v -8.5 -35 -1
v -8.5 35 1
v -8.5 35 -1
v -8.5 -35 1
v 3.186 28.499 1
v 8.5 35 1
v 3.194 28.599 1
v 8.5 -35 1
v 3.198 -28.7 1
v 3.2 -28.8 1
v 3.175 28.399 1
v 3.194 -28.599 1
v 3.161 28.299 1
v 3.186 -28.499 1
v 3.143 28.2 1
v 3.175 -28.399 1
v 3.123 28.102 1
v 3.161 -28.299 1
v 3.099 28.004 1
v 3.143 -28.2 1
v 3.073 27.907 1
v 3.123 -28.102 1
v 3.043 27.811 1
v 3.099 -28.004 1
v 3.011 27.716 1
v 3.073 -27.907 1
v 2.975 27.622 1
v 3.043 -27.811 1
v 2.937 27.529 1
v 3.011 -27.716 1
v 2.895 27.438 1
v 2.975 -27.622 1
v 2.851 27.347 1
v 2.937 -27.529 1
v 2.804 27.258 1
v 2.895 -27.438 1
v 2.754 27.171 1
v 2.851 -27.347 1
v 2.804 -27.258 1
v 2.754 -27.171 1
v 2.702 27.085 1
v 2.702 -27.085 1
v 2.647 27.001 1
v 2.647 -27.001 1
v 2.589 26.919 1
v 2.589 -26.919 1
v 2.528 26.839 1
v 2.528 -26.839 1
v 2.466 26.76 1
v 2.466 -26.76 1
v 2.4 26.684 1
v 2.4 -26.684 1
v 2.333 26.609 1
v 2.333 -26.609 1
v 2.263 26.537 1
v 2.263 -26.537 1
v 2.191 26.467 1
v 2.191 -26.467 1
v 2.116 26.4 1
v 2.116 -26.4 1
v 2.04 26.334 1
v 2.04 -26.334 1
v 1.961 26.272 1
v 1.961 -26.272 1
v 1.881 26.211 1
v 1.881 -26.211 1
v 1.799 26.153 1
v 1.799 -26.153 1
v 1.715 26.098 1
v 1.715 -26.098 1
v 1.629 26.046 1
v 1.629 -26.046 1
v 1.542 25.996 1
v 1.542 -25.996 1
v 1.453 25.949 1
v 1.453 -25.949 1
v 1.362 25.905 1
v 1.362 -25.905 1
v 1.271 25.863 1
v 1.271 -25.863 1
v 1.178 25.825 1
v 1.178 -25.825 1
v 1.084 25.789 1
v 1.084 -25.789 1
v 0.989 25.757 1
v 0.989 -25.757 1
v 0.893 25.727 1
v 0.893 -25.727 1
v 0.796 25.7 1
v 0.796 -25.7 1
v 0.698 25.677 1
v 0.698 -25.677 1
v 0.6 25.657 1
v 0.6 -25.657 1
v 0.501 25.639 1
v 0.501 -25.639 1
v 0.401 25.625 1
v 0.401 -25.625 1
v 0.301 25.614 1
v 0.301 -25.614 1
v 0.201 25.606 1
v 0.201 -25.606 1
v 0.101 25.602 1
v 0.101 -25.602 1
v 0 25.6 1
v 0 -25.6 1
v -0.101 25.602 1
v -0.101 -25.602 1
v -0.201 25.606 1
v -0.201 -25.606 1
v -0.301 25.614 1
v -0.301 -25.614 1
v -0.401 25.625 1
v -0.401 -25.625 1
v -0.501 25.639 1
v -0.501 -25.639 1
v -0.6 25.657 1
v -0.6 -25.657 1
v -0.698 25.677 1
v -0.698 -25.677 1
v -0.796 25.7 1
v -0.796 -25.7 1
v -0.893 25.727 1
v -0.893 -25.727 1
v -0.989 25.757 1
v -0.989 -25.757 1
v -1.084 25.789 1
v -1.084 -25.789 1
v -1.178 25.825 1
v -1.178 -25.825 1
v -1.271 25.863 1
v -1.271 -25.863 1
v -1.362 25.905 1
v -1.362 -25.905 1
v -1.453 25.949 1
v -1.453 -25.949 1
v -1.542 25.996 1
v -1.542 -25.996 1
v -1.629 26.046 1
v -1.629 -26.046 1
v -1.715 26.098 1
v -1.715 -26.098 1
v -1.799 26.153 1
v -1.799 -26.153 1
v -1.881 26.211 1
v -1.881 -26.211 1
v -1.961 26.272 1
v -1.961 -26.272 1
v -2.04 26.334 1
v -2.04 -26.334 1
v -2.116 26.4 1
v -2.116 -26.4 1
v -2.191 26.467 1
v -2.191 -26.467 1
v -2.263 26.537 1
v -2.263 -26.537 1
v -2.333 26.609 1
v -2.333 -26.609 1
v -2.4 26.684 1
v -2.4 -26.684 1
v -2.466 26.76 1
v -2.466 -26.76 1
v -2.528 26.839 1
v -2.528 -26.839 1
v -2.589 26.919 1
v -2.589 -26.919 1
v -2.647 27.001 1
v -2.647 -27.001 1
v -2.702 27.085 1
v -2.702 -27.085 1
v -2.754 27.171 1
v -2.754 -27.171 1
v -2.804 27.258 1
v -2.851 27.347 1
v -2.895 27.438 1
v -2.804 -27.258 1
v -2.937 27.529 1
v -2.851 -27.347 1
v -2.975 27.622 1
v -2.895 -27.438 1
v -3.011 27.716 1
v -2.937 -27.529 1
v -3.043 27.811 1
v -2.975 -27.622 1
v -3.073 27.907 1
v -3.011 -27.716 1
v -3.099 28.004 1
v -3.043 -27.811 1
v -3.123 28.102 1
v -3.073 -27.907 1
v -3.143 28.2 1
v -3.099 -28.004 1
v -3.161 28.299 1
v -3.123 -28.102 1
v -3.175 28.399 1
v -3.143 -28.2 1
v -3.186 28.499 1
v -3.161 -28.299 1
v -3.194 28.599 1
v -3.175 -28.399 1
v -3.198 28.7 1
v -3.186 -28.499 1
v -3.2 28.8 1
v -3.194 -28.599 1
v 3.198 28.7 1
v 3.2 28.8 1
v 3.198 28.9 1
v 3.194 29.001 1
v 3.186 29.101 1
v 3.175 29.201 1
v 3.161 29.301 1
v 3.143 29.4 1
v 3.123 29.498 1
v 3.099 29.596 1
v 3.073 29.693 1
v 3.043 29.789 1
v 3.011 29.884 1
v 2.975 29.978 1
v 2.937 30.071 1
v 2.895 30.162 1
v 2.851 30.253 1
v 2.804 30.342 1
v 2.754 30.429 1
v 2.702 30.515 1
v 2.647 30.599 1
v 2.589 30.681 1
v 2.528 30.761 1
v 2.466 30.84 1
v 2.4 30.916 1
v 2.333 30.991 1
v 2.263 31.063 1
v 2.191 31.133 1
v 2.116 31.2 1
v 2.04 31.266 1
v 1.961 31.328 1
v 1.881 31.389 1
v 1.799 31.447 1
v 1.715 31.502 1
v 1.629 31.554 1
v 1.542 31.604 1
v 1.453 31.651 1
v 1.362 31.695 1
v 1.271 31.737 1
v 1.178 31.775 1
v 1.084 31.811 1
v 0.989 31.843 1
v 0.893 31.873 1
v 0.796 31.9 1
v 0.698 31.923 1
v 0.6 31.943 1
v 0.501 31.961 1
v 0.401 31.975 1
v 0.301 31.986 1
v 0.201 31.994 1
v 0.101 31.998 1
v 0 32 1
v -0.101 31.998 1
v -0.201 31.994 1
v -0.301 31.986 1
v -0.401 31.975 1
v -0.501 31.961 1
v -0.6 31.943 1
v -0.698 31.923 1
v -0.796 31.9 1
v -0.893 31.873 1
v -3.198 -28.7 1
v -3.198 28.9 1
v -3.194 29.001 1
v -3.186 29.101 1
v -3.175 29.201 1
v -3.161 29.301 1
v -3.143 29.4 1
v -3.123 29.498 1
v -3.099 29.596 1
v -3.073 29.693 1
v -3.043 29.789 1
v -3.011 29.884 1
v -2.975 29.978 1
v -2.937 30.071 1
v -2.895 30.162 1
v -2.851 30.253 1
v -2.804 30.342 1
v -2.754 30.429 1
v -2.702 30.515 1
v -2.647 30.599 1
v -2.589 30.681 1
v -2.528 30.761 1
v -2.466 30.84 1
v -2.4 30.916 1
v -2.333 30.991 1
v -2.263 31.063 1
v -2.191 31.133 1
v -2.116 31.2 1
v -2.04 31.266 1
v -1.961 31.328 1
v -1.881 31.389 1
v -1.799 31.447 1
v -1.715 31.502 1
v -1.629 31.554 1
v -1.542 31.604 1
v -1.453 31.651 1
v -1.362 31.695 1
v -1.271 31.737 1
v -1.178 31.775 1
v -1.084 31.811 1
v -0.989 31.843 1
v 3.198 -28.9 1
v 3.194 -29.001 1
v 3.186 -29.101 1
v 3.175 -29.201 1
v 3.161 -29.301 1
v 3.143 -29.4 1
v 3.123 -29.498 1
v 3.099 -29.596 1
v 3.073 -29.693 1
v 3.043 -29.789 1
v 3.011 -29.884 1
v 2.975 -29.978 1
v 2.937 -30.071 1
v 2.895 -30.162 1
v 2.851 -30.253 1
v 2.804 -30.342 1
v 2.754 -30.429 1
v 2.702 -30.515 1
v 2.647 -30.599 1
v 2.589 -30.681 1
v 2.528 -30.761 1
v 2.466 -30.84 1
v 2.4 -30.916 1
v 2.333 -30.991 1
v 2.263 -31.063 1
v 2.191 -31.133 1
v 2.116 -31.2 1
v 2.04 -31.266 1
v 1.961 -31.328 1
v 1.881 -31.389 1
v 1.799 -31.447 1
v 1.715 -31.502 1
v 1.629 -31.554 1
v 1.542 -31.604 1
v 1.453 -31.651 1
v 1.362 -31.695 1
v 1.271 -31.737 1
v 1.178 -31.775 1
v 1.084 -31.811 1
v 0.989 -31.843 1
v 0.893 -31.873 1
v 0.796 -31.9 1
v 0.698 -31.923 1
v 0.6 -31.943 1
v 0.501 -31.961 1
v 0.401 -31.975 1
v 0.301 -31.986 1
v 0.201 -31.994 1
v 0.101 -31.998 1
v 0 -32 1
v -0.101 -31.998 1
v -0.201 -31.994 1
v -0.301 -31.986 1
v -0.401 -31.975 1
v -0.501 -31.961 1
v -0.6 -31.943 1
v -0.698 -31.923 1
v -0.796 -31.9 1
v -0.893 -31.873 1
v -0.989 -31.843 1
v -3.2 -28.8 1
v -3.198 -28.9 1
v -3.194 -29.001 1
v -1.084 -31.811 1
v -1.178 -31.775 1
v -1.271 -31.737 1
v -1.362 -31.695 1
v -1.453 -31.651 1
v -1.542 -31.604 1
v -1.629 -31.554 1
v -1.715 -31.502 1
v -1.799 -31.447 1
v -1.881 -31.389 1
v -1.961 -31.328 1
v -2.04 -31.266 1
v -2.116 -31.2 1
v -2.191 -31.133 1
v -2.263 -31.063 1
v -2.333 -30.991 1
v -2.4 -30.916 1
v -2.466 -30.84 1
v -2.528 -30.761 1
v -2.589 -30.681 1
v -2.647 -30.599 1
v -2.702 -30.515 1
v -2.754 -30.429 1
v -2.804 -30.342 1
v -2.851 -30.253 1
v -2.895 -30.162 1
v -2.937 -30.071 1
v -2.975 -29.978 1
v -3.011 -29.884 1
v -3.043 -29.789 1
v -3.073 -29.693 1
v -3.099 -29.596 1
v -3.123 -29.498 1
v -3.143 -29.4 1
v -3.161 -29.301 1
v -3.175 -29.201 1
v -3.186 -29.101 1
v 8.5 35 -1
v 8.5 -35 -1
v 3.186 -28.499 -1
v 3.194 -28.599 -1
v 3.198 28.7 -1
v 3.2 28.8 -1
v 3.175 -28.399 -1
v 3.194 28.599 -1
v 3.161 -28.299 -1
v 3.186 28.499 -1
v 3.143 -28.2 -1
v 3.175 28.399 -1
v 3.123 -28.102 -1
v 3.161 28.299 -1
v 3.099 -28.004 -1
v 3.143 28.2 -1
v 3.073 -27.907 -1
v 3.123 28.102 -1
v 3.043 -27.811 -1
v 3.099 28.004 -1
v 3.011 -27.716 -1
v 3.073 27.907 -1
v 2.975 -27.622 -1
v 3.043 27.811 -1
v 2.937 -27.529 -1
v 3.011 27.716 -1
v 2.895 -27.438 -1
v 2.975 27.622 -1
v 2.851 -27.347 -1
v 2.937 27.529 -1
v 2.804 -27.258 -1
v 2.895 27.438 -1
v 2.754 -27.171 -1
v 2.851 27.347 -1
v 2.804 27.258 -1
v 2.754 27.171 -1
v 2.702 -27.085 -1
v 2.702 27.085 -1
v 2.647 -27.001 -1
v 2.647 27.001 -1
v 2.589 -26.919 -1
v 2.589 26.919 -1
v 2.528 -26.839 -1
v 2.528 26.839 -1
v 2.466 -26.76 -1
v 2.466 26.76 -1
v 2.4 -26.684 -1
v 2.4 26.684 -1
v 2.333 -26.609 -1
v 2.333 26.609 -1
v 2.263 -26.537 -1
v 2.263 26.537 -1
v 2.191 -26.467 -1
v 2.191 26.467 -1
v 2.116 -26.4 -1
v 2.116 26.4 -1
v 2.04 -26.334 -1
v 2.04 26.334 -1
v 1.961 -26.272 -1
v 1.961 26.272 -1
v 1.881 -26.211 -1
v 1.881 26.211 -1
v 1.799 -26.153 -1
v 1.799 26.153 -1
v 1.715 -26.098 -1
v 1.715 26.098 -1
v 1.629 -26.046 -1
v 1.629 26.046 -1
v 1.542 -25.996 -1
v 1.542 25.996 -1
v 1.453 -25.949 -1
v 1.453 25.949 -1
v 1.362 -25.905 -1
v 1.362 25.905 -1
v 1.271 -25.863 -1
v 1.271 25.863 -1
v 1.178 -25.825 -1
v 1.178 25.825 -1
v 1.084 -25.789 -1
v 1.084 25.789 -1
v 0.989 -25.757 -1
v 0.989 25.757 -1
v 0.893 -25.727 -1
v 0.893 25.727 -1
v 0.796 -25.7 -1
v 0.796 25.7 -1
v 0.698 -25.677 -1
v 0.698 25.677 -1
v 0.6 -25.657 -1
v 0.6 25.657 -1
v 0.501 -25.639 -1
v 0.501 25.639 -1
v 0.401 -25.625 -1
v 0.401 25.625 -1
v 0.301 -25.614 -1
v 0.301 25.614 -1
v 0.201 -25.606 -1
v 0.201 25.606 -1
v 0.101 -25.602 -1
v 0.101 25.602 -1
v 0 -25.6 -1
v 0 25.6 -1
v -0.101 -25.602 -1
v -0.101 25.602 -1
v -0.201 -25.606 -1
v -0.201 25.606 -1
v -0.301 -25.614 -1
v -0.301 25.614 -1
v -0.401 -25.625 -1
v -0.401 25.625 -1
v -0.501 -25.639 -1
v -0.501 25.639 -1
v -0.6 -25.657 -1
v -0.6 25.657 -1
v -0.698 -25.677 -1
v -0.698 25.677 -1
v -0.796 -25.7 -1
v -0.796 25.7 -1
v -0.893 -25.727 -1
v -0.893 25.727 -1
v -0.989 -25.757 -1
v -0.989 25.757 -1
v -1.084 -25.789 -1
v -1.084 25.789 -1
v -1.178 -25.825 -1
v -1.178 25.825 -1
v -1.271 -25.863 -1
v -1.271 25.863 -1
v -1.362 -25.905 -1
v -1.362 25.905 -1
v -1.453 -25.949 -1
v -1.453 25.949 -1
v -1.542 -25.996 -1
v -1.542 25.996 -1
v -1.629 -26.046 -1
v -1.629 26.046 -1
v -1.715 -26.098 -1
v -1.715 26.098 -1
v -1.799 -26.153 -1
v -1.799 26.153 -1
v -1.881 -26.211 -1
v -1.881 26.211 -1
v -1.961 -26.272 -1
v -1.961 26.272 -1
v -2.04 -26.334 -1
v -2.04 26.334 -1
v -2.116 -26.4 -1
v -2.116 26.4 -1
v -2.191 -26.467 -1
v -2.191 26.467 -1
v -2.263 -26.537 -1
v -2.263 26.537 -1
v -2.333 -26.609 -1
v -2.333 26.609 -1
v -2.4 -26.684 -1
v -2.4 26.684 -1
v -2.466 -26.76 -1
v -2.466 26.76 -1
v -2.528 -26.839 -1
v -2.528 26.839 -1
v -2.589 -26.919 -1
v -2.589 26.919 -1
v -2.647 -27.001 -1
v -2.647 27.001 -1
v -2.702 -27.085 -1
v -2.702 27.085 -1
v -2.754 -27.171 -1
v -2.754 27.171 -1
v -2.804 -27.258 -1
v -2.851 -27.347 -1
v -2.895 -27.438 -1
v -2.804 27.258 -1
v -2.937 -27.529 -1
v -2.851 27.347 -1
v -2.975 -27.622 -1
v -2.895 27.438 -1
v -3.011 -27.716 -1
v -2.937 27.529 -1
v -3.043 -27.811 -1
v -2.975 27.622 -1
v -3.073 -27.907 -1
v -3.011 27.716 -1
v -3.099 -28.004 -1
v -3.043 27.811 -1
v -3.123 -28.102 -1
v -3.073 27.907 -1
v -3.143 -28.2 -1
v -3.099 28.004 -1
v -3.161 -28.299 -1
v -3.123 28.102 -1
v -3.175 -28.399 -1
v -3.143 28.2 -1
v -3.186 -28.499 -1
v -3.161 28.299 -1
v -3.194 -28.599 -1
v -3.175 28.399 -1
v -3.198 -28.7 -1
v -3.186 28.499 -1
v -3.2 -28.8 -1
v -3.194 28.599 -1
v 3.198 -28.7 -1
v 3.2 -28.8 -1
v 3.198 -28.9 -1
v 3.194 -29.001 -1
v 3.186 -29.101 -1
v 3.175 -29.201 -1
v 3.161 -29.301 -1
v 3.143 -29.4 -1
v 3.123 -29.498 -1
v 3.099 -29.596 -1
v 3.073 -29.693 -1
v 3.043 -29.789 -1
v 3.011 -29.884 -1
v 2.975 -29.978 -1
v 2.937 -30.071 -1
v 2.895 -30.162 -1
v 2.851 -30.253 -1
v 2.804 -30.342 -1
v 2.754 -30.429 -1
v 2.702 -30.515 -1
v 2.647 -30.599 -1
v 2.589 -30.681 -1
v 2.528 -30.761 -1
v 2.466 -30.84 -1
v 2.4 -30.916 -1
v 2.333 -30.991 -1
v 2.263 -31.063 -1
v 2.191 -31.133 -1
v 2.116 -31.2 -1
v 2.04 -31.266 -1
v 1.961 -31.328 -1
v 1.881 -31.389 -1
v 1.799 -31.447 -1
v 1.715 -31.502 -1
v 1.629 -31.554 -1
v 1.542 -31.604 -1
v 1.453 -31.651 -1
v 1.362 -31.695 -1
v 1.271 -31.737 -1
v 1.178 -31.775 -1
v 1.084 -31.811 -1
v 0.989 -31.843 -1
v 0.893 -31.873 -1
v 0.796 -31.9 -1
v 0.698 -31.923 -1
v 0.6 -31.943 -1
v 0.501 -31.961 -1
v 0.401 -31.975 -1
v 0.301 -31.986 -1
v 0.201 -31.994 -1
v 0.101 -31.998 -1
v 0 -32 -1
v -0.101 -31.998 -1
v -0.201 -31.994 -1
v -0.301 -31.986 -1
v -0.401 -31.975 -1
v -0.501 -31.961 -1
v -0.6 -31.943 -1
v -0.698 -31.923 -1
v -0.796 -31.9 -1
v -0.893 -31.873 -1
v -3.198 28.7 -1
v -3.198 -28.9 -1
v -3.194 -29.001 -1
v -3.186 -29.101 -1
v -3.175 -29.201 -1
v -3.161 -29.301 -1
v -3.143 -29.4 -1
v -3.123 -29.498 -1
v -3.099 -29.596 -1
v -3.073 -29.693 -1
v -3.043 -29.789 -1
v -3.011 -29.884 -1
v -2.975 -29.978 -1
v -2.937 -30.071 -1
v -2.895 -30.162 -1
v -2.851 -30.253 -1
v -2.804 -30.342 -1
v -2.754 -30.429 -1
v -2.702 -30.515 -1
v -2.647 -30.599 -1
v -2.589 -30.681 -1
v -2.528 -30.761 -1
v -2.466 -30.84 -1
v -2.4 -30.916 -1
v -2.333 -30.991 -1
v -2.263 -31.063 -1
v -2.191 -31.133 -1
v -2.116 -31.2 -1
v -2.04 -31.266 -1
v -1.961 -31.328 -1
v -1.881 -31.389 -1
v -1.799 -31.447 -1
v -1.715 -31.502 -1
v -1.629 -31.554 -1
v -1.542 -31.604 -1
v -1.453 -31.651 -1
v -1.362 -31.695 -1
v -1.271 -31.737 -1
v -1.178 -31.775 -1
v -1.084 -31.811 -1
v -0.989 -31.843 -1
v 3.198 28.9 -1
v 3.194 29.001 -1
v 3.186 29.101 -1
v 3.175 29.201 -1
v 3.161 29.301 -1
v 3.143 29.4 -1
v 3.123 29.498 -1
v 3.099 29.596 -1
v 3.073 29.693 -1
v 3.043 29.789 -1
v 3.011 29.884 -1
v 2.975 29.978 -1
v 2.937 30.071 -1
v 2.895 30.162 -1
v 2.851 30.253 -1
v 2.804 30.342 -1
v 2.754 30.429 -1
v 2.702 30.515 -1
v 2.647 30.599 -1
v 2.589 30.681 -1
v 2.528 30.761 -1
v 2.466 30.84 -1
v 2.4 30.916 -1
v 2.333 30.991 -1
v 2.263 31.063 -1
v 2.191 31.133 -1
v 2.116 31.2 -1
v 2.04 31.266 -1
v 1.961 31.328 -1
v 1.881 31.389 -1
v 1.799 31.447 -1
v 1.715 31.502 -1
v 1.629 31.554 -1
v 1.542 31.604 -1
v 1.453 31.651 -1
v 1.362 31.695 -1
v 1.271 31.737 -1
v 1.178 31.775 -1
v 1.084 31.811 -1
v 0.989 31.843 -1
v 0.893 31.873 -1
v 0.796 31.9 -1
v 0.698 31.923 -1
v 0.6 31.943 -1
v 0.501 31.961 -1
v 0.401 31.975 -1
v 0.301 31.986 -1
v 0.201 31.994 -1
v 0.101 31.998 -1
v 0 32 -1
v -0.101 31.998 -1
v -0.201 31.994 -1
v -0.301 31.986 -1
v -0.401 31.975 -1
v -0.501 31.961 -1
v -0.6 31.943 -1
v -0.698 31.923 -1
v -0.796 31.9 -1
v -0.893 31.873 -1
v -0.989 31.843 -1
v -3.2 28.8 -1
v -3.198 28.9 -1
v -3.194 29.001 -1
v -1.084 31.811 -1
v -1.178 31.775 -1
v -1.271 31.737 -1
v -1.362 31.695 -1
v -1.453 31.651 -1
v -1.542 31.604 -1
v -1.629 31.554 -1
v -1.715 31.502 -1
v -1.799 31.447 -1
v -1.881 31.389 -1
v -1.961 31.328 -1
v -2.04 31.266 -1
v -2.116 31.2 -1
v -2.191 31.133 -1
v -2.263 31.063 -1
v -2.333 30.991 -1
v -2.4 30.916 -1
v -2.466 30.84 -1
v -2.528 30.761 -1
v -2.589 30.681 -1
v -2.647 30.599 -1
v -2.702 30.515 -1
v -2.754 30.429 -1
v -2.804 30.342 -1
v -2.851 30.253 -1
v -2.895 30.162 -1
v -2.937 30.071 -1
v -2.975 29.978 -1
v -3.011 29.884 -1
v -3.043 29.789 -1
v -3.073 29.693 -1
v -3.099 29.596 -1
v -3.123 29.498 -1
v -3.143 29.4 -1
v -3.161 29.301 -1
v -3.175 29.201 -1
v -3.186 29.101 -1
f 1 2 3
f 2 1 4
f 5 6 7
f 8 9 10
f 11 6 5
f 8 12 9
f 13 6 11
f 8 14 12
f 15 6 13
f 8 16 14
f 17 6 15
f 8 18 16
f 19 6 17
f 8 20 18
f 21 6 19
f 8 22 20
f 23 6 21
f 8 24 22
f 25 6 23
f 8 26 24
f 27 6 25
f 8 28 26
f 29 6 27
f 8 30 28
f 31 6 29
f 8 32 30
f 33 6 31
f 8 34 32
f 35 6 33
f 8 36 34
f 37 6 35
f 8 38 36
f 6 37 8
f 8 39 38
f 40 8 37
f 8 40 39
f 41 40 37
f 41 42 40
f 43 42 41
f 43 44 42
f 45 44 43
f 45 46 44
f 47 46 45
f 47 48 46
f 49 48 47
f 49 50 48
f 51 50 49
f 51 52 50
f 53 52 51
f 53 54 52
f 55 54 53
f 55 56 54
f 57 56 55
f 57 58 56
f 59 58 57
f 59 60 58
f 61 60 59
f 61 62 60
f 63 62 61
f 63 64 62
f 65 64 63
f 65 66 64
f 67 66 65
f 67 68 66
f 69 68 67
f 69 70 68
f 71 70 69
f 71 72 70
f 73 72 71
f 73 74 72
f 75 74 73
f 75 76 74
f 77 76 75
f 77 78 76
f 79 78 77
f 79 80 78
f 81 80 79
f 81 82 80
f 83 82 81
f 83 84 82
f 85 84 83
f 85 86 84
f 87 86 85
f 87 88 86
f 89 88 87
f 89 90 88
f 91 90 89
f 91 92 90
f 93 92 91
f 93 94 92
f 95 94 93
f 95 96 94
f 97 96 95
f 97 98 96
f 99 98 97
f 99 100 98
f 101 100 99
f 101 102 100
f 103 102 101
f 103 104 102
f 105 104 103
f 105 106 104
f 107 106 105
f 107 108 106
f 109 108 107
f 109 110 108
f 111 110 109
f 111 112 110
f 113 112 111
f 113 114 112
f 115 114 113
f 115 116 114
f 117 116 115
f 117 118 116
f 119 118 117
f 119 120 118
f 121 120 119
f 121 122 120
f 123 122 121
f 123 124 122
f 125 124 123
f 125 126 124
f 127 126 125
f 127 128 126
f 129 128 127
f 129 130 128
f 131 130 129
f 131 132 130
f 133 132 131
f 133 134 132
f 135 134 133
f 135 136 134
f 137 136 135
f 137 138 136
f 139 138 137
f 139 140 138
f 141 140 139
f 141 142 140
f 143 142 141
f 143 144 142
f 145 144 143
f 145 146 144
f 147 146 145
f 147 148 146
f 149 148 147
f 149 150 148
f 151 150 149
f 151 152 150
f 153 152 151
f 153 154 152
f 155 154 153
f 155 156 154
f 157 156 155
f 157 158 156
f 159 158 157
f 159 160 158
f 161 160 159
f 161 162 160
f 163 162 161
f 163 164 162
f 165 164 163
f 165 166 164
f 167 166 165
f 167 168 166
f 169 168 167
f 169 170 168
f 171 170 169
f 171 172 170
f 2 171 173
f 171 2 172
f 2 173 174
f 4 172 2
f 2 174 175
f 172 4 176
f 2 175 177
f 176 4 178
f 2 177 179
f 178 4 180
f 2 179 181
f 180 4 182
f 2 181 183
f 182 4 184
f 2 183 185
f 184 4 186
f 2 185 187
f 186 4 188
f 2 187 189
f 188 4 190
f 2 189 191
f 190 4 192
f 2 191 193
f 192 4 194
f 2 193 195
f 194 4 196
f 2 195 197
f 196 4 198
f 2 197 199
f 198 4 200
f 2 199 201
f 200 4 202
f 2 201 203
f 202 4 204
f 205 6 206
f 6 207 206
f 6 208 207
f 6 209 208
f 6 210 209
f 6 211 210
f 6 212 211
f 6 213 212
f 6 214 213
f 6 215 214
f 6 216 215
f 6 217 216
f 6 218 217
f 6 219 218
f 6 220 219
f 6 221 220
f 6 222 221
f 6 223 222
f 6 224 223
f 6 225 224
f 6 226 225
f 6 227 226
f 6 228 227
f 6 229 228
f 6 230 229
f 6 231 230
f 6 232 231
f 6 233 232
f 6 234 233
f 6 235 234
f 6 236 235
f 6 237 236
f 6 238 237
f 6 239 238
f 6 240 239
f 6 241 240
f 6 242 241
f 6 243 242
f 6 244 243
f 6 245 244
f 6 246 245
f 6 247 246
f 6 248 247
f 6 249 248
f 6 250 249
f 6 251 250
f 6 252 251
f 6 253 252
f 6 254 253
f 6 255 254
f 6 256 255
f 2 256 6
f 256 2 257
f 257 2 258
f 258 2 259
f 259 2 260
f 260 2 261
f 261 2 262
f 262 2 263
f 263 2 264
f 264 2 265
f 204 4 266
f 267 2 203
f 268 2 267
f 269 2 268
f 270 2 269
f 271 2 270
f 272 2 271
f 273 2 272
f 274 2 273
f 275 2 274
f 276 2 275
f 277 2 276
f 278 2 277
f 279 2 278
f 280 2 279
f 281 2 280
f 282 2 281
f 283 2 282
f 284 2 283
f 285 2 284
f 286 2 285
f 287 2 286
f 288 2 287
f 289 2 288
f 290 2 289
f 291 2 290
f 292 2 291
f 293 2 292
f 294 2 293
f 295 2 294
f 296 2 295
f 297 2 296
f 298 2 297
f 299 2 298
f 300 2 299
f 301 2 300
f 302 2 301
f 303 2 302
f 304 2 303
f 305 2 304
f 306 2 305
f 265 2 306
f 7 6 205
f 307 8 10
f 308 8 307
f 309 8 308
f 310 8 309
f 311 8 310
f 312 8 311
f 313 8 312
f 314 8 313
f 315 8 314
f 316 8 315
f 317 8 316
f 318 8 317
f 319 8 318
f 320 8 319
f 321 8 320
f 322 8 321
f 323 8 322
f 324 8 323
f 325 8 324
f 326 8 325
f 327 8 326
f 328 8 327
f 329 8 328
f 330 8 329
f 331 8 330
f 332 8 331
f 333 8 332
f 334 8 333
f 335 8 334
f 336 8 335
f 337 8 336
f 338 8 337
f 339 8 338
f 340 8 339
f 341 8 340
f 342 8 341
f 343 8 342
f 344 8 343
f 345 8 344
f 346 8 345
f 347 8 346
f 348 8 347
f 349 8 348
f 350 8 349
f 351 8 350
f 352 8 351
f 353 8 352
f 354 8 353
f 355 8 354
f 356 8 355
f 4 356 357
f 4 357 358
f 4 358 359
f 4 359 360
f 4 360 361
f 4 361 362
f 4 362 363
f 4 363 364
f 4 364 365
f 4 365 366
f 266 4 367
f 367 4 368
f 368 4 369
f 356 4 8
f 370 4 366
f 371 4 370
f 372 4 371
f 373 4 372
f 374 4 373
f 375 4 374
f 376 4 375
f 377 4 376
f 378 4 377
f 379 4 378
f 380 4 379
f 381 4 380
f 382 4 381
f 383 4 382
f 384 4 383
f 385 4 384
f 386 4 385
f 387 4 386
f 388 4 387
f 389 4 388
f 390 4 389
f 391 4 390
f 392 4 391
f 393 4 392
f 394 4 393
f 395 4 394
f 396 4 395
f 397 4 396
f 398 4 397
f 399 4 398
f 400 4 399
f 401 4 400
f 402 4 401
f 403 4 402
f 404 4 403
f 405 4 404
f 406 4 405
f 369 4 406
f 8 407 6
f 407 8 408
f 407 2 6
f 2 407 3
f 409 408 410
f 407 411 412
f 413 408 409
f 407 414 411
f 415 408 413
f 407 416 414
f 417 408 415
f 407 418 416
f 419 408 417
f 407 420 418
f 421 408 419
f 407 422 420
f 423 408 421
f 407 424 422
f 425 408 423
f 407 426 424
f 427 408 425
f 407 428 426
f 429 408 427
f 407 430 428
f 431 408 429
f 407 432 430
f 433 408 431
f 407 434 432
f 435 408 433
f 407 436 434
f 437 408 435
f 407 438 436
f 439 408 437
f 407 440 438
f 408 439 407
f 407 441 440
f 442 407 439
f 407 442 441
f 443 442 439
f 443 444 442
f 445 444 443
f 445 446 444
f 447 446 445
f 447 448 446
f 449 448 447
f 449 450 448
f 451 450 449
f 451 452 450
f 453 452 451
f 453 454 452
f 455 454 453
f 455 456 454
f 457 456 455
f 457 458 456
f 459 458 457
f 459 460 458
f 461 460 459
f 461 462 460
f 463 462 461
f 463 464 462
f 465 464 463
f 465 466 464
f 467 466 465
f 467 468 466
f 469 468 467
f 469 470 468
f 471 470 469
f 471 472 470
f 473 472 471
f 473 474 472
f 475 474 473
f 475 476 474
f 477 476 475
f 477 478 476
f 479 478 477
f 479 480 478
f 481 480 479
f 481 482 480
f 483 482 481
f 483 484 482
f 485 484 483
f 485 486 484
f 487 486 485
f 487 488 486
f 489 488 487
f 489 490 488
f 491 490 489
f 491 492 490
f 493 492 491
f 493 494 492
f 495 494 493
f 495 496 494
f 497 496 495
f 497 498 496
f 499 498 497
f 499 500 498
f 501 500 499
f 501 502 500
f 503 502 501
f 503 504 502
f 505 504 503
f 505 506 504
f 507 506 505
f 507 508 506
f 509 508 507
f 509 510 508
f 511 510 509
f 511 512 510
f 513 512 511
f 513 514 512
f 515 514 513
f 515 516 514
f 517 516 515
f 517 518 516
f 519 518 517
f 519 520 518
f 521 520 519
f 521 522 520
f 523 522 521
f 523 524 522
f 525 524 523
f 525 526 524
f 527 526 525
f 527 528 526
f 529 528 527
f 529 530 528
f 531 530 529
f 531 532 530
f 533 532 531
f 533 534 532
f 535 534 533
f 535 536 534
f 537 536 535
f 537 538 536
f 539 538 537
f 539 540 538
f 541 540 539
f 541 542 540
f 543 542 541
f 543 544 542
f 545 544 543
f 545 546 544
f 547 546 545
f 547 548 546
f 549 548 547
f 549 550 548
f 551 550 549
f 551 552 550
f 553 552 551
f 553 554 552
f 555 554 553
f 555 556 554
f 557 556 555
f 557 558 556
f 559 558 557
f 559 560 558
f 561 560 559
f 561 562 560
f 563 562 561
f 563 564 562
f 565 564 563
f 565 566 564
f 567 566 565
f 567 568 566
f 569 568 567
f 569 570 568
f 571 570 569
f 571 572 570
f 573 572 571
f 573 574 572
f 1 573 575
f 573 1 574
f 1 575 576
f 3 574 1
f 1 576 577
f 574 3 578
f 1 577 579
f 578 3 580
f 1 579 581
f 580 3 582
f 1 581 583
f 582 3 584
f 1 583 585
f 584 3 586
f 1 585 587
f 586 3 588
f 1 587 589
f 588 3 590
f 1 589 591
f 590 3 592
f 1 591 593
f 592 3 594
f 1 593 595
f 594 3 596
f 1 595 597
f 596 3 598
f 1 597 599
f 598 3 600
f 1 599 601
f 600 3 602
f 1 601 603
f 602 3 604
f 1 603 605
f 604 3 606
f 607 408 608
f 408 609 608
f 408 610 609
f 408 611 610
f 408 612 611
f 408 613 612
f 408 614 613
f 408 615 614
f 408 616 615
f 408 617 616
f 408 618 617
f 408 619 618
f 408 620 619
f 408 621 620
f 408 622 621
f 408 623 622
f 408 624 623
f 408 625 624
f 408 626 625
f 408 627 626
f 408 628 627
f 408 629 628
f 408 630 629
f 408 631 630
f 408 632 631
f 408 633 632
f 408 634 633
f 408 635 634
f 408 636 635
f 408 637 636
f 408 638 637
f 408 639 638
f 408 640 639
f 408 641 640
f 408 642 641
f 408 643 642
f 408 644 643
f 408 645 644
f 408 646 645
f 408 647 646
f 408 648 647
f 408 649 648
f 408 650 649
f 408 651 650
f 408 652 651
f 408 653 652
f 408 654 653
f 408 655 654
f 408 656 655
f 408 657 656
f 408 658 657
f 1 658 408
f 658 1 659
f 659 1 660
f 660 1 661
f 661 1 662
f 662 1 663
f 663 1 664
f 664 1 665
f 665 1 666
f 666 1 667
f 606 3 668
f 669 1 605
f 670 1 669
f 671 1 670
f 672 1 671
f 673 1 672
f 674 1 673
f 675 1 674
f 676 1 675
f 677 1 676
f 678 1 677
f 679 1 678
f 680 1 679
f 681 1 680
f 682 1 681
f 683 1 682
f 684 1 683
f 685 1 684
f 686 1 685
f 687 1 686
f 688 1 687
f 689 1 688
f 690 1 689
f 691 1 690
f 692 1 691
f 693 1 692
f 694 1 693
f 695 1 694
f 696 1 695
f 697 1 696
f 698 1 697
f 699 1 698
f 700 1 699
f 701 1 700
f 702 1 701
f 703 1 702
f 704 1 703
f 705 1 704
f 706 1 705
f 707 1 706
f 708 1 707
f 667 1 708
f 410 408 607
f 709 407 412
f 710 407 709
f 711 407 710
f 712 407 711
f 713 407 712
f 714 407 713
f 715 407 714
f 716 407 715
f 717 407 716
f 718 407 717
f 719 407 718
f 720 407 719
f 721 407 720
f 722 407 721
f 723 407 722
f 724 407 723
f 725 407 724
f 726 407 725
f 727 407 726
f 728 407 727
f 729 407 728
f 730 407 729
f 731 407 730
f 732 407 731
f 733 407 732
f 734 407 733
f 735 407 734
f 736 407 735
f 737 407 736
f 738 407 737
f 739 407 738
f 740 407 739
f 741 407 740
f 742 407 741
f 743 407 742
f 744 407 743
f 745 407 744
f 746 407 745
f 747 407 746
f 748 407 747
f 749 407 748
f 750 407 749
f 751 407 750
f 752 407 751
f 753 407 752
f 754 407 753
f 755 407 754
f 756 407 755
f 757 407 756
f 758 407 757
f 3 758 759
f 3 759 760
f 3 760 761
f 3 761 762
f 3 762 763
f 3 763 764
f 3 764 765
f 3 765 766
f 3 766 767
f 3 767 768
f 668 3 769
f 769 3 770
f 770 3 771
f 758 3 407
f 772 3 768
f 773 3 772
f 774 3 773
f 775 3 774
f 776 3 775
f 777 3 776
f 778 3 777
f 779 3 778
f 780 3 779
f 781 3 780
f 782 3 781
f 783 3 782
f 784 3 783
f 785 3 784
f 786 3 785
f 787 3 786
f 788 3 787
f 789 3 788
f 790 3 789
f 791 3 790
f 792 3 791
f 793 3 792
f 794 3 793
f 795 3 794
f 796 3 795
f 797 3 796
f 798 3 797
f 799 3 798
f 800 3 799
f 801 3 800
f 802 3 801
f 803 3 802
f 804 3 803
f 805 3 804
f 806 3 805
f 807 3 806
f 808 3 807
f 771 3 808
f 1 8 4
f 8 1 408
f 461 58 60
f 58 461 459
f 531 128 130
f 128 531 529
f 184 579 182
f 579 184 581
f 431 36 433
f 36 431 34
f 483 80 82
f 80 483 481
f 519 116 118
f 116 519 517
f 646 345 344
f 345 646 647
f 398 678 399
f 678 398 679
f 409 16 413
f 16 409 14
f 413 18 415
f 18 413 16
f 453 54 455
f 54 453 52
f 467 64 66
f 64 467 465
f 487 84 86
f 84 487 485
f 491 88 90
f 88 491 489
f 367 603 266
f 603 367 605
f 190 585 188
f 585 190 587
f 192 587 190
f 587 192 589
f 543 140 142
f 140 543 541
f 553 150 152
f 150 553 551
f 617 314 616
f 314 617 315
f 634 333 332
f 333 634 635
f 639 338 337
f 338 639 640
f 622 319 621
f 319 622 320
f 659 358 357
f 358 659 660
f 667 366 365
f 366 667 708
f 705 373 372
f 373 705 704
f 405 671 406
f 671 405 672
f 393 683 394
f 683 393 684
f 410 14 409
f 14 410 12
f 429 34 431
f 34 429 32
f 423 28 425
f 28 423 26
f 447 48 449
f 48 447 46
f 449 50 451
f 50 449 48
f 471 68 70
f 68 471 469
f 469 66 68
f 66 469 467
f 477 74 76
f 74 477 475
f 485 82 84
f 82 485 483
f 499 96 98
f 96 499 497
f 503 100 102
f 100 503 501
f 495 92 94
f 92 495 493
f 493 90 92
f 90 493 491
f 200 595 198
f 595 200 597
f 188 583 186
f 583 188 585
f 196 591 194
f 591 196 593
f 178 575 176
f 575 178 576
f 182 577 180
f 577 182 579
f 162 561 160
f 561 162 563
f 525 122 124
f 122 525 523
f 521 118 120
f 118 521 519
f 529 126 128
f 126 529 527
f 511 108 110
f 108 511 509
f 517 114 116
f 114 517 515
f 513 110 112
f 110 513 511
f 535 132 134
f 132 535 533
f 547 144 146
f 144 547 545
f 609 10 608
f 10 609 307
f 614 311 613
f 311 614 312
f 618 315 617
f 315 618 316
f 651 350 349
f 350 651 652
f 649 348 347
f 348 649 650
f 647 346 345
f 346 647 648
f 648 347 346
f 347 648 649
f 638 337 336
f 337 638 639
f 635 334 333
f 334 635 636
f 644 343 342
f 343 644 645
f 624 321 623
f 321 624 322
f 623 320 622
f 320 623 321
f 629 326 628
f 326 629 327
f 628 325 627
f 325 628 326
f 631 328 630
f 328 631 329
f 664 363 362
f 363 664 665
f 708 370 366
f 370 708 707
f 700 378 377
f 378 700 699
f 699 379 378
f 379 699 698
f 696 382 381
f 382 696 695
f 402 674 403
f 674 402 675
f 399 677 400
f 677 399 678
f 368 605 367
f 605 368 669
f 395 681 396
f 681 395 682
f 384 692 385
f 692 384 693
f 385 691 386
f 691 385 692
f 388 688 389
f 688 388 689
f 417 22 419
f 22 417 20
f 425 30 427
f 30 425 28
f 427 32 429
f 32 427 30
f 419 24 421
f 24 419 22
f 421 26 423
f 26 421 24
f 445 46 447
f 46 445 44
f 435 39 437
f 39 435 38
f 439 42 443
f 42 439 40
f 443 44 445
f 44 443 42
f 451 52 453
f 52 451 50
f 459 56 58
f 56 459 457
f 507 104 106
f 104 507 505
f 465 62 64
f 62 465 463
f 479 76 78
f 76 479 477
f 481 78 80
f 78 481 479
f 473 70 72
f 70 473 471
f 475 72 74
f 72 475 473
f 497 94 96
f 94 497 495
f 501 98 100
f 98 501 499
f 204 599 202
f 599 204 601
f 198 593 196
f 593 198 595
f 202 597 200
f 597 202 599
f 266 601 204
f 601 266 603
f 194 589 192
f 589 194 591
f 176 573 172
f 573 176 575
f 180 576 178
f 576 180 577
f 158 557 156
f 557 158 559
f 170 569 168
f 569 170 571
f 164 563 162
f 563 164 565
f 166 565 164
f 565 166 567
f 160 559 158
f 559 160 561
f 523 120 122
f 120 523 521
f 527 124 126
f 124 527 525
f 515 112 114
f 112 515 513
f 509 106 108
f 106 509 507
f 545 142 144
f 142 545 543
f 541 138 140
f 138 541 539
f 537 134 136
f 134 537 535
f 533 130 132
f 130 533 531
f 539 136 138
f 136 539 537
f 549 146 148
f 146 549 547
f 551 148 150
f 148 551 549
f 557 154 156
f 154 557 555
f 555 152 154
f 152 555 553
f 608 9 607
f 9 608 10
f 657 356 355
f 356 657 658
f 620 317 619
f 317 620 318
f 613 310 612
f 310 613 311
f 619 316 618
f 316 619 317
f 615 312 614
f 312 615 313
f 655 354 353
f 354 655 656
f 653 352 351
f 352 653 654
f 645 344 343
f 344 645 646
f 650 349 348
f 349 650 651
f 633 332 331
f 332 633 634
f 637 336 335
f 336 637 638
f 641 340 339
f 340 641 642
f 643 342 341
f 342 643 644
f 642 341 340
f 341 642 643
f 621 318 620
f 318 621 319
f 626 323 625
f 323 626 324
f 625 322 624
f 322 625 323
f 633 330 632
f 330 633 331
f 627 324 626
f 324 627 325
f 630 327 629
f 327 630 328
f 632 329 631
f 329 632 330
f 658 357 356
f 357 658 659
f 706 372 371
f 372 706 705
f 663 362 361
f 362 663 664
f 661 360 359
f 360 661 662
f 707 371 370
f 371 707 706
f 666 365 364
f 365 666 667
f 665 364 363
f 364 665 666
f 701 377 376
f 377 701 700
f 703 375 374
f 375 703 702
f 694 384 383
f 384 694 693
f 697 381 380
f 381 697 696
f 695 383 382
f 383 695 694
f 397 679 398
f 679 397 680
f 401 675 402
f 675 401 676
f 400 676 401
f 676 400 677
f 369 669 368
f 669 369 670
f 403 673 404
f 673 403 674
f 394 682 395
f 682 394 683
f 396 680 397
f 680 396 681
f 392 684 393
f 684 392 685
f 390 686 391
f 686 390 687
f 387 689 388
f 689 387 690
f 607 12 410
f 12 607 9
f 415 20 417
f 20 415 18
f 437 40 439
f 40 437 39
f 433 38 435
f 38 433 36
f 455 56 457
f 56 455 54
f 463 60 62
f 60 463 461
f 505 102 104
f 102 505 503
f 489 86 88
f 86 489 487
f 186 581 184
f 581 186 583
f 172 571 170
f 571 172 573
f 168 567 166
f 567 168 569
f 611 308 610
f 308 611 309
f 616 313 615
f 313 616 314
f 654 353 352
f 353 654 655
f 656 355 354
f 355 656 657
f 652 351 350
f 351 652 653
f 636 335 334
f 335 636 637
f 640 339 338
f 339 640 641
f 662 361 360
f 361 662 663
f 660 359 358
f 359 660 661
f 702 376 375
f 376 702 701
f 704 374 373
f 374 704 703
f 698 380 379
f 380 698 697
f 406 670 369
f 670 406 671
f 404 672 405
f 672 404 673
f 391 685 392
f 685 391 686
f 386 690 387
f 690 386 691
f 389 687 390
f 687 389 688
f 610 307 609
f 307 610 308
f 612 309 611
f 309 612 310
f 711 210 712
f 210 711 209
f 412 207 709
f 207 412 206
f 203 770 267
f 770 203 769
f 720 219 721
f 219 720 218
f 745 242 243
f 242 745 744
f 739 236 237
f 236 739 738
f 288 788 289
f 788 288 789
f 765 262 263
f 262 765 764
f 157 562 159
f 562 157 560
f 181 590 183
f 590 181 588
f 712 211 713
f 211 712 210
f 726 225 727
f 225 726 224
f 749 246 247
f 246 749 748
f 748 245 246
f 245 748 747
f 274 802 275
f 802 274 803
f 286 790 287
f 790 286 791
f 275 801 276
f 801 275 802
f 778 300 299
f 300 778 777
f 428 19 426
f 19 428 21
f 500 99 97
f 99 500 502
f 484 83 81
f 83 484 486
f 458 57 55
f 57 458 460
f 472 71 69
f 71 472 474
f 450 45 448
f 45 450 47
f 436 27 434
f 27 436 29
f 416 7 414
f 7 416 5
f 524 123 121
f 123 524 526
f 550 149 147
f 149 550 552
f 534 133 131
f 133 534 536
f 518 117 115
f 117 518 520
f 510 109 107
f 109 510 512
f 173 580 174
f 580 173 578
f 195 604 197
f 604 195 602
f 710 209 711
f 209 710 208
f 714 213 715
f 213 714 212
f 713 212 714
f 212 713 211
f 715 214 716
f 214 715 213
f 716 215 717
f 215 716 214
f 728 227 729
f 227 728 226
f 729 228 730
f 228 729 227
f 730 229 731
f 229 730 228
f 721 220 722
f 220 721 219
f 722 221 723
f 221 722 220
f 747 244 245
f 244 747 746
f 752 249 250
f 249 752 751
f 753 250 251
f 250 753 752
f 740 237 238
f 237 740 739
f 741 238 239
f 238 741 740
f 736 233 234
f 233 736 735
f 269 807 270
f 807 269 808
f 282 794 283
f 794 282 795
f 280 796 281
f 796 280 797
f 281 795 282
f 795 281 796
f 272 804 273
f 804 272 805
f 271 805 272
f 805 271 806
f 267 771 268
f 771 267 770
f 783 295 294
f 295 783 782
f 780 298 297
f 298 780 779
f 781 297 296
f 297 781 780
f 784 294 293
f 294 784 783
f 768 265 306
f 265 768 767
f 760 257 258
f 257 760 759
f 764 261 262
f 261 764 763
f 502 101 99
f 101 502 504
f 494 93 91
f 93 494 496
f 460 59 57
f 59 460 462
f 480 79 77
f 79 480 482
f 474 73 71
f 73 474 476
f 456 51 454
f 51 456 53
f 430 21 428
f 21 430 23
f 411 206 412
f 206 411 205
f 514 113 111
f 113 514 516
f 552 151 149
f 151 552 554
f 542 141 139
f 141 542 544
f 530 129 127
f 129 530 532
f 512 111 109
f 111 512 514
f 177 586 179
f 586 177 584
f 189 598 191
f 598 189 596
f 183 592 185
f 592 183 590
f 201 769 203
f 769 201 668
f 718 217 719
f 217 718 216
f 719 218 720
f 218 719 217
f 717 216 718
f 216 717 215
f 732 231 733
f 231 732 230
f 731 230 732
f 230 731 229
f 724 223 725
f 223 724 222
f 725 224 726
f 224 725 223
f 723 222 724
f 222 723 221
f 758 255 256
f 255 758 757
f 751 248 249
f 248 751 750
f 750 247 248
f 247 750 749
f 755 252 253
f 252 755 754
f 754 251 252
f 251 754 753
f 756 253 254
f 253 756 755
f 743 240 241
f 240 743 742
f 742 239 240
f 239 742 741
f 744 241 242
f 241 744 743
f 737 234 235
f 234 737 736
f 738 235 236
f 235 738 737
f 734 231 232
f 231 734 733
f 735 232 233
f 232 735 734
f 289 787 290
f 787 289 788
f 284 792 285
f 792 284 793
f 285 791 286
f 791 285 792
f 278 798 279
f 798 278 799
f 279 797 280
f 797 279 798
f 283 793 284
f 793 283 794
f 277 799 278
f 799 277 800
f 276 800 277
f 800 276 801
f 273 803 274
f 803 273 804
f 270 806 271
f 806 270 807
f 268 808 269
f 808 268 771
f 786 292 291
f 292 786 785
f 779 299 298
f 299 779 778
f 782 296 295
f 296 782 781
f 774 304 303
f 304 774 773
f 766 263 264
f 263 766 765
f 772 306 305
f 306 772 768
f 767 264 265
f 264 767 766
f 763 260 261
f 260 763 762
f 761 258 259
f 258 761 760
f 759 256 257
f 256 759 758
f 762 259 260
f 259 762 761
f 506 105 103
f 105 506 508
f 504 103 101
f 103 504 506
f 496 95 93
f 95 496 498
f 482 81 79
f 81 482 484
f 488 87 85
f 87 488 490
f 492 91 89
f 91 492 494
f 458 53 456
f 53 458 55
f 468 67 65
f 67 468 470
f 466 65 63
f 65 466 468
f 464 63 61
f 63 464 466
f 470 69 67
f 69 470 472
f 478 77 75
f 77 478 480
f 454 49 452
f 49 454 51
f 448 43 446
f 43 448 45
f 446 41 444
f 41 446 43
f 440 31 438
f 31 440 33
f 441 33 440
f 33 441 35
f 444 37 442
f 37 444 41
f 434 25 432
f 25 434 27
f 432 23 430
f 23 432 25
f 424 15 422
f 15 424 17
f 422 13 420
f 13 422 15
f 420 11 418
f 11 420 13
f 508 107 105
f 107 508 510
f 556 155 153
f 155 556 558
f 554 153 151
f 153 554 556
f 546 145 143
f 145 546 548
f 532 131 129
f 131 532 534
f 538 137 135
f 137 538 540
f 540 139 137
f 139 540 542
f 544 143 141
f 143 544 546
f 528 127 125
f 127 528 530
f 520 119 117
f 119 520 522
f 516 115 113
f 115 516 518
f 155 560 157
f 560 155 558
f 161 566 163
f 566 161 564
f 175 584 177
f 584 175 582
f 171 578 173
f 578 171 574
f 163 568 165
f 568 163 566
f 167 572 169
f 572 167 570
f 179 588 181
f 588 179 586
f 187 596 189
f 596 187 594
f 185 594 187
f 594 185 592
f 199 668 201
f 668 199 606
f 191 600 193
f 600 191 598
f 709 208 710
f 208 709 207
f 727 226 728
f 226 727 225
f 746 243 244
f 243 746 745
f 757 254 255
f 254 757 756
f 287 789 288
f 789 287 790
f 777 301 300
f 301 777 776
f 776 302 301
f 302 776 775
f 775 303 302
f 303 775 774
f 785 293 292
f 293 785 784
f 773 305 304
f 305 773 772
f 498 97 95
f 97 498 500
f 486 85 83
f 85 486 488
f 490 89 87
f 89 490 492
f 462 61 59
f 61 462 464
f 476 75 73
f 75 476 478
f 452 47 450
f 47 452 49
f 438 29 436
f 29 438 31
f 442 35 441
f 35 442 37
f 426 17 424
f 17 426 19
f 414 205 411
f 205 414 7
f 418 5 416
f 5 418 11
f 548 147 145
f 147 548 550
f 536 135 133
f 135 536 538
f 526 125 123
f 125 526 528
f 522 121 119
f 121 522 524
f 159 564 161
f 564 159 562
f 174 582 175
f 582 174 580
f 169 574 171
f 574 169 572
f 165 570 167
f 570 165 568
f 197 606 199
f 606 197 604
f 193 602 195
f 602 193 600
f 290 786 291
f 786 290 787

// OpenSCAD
// Variables declaration
baseY = 70;
baseX = 17;
baseZ = 2;

screwHeight = baseZ+3;
screwRadio = 3.2;

screwBorder = 3;

// Operations
module connection(){
    difference(){
        cube([baseX, baseY, baseZ], center = true);
        translate([0, -(baseY/2) + screwRadio + screwBorder, -1]){
            cylinder(r=screwRadio, h=screwHeight, $fn=200, center = true);
        }
        translate([0, (baseY/2) - screwRadio - screwBorder, -1]){
            cylinder(r=screwRadio, h=screwHeight, $fn=200, center = true);
        }
    }
 }
 connection();
